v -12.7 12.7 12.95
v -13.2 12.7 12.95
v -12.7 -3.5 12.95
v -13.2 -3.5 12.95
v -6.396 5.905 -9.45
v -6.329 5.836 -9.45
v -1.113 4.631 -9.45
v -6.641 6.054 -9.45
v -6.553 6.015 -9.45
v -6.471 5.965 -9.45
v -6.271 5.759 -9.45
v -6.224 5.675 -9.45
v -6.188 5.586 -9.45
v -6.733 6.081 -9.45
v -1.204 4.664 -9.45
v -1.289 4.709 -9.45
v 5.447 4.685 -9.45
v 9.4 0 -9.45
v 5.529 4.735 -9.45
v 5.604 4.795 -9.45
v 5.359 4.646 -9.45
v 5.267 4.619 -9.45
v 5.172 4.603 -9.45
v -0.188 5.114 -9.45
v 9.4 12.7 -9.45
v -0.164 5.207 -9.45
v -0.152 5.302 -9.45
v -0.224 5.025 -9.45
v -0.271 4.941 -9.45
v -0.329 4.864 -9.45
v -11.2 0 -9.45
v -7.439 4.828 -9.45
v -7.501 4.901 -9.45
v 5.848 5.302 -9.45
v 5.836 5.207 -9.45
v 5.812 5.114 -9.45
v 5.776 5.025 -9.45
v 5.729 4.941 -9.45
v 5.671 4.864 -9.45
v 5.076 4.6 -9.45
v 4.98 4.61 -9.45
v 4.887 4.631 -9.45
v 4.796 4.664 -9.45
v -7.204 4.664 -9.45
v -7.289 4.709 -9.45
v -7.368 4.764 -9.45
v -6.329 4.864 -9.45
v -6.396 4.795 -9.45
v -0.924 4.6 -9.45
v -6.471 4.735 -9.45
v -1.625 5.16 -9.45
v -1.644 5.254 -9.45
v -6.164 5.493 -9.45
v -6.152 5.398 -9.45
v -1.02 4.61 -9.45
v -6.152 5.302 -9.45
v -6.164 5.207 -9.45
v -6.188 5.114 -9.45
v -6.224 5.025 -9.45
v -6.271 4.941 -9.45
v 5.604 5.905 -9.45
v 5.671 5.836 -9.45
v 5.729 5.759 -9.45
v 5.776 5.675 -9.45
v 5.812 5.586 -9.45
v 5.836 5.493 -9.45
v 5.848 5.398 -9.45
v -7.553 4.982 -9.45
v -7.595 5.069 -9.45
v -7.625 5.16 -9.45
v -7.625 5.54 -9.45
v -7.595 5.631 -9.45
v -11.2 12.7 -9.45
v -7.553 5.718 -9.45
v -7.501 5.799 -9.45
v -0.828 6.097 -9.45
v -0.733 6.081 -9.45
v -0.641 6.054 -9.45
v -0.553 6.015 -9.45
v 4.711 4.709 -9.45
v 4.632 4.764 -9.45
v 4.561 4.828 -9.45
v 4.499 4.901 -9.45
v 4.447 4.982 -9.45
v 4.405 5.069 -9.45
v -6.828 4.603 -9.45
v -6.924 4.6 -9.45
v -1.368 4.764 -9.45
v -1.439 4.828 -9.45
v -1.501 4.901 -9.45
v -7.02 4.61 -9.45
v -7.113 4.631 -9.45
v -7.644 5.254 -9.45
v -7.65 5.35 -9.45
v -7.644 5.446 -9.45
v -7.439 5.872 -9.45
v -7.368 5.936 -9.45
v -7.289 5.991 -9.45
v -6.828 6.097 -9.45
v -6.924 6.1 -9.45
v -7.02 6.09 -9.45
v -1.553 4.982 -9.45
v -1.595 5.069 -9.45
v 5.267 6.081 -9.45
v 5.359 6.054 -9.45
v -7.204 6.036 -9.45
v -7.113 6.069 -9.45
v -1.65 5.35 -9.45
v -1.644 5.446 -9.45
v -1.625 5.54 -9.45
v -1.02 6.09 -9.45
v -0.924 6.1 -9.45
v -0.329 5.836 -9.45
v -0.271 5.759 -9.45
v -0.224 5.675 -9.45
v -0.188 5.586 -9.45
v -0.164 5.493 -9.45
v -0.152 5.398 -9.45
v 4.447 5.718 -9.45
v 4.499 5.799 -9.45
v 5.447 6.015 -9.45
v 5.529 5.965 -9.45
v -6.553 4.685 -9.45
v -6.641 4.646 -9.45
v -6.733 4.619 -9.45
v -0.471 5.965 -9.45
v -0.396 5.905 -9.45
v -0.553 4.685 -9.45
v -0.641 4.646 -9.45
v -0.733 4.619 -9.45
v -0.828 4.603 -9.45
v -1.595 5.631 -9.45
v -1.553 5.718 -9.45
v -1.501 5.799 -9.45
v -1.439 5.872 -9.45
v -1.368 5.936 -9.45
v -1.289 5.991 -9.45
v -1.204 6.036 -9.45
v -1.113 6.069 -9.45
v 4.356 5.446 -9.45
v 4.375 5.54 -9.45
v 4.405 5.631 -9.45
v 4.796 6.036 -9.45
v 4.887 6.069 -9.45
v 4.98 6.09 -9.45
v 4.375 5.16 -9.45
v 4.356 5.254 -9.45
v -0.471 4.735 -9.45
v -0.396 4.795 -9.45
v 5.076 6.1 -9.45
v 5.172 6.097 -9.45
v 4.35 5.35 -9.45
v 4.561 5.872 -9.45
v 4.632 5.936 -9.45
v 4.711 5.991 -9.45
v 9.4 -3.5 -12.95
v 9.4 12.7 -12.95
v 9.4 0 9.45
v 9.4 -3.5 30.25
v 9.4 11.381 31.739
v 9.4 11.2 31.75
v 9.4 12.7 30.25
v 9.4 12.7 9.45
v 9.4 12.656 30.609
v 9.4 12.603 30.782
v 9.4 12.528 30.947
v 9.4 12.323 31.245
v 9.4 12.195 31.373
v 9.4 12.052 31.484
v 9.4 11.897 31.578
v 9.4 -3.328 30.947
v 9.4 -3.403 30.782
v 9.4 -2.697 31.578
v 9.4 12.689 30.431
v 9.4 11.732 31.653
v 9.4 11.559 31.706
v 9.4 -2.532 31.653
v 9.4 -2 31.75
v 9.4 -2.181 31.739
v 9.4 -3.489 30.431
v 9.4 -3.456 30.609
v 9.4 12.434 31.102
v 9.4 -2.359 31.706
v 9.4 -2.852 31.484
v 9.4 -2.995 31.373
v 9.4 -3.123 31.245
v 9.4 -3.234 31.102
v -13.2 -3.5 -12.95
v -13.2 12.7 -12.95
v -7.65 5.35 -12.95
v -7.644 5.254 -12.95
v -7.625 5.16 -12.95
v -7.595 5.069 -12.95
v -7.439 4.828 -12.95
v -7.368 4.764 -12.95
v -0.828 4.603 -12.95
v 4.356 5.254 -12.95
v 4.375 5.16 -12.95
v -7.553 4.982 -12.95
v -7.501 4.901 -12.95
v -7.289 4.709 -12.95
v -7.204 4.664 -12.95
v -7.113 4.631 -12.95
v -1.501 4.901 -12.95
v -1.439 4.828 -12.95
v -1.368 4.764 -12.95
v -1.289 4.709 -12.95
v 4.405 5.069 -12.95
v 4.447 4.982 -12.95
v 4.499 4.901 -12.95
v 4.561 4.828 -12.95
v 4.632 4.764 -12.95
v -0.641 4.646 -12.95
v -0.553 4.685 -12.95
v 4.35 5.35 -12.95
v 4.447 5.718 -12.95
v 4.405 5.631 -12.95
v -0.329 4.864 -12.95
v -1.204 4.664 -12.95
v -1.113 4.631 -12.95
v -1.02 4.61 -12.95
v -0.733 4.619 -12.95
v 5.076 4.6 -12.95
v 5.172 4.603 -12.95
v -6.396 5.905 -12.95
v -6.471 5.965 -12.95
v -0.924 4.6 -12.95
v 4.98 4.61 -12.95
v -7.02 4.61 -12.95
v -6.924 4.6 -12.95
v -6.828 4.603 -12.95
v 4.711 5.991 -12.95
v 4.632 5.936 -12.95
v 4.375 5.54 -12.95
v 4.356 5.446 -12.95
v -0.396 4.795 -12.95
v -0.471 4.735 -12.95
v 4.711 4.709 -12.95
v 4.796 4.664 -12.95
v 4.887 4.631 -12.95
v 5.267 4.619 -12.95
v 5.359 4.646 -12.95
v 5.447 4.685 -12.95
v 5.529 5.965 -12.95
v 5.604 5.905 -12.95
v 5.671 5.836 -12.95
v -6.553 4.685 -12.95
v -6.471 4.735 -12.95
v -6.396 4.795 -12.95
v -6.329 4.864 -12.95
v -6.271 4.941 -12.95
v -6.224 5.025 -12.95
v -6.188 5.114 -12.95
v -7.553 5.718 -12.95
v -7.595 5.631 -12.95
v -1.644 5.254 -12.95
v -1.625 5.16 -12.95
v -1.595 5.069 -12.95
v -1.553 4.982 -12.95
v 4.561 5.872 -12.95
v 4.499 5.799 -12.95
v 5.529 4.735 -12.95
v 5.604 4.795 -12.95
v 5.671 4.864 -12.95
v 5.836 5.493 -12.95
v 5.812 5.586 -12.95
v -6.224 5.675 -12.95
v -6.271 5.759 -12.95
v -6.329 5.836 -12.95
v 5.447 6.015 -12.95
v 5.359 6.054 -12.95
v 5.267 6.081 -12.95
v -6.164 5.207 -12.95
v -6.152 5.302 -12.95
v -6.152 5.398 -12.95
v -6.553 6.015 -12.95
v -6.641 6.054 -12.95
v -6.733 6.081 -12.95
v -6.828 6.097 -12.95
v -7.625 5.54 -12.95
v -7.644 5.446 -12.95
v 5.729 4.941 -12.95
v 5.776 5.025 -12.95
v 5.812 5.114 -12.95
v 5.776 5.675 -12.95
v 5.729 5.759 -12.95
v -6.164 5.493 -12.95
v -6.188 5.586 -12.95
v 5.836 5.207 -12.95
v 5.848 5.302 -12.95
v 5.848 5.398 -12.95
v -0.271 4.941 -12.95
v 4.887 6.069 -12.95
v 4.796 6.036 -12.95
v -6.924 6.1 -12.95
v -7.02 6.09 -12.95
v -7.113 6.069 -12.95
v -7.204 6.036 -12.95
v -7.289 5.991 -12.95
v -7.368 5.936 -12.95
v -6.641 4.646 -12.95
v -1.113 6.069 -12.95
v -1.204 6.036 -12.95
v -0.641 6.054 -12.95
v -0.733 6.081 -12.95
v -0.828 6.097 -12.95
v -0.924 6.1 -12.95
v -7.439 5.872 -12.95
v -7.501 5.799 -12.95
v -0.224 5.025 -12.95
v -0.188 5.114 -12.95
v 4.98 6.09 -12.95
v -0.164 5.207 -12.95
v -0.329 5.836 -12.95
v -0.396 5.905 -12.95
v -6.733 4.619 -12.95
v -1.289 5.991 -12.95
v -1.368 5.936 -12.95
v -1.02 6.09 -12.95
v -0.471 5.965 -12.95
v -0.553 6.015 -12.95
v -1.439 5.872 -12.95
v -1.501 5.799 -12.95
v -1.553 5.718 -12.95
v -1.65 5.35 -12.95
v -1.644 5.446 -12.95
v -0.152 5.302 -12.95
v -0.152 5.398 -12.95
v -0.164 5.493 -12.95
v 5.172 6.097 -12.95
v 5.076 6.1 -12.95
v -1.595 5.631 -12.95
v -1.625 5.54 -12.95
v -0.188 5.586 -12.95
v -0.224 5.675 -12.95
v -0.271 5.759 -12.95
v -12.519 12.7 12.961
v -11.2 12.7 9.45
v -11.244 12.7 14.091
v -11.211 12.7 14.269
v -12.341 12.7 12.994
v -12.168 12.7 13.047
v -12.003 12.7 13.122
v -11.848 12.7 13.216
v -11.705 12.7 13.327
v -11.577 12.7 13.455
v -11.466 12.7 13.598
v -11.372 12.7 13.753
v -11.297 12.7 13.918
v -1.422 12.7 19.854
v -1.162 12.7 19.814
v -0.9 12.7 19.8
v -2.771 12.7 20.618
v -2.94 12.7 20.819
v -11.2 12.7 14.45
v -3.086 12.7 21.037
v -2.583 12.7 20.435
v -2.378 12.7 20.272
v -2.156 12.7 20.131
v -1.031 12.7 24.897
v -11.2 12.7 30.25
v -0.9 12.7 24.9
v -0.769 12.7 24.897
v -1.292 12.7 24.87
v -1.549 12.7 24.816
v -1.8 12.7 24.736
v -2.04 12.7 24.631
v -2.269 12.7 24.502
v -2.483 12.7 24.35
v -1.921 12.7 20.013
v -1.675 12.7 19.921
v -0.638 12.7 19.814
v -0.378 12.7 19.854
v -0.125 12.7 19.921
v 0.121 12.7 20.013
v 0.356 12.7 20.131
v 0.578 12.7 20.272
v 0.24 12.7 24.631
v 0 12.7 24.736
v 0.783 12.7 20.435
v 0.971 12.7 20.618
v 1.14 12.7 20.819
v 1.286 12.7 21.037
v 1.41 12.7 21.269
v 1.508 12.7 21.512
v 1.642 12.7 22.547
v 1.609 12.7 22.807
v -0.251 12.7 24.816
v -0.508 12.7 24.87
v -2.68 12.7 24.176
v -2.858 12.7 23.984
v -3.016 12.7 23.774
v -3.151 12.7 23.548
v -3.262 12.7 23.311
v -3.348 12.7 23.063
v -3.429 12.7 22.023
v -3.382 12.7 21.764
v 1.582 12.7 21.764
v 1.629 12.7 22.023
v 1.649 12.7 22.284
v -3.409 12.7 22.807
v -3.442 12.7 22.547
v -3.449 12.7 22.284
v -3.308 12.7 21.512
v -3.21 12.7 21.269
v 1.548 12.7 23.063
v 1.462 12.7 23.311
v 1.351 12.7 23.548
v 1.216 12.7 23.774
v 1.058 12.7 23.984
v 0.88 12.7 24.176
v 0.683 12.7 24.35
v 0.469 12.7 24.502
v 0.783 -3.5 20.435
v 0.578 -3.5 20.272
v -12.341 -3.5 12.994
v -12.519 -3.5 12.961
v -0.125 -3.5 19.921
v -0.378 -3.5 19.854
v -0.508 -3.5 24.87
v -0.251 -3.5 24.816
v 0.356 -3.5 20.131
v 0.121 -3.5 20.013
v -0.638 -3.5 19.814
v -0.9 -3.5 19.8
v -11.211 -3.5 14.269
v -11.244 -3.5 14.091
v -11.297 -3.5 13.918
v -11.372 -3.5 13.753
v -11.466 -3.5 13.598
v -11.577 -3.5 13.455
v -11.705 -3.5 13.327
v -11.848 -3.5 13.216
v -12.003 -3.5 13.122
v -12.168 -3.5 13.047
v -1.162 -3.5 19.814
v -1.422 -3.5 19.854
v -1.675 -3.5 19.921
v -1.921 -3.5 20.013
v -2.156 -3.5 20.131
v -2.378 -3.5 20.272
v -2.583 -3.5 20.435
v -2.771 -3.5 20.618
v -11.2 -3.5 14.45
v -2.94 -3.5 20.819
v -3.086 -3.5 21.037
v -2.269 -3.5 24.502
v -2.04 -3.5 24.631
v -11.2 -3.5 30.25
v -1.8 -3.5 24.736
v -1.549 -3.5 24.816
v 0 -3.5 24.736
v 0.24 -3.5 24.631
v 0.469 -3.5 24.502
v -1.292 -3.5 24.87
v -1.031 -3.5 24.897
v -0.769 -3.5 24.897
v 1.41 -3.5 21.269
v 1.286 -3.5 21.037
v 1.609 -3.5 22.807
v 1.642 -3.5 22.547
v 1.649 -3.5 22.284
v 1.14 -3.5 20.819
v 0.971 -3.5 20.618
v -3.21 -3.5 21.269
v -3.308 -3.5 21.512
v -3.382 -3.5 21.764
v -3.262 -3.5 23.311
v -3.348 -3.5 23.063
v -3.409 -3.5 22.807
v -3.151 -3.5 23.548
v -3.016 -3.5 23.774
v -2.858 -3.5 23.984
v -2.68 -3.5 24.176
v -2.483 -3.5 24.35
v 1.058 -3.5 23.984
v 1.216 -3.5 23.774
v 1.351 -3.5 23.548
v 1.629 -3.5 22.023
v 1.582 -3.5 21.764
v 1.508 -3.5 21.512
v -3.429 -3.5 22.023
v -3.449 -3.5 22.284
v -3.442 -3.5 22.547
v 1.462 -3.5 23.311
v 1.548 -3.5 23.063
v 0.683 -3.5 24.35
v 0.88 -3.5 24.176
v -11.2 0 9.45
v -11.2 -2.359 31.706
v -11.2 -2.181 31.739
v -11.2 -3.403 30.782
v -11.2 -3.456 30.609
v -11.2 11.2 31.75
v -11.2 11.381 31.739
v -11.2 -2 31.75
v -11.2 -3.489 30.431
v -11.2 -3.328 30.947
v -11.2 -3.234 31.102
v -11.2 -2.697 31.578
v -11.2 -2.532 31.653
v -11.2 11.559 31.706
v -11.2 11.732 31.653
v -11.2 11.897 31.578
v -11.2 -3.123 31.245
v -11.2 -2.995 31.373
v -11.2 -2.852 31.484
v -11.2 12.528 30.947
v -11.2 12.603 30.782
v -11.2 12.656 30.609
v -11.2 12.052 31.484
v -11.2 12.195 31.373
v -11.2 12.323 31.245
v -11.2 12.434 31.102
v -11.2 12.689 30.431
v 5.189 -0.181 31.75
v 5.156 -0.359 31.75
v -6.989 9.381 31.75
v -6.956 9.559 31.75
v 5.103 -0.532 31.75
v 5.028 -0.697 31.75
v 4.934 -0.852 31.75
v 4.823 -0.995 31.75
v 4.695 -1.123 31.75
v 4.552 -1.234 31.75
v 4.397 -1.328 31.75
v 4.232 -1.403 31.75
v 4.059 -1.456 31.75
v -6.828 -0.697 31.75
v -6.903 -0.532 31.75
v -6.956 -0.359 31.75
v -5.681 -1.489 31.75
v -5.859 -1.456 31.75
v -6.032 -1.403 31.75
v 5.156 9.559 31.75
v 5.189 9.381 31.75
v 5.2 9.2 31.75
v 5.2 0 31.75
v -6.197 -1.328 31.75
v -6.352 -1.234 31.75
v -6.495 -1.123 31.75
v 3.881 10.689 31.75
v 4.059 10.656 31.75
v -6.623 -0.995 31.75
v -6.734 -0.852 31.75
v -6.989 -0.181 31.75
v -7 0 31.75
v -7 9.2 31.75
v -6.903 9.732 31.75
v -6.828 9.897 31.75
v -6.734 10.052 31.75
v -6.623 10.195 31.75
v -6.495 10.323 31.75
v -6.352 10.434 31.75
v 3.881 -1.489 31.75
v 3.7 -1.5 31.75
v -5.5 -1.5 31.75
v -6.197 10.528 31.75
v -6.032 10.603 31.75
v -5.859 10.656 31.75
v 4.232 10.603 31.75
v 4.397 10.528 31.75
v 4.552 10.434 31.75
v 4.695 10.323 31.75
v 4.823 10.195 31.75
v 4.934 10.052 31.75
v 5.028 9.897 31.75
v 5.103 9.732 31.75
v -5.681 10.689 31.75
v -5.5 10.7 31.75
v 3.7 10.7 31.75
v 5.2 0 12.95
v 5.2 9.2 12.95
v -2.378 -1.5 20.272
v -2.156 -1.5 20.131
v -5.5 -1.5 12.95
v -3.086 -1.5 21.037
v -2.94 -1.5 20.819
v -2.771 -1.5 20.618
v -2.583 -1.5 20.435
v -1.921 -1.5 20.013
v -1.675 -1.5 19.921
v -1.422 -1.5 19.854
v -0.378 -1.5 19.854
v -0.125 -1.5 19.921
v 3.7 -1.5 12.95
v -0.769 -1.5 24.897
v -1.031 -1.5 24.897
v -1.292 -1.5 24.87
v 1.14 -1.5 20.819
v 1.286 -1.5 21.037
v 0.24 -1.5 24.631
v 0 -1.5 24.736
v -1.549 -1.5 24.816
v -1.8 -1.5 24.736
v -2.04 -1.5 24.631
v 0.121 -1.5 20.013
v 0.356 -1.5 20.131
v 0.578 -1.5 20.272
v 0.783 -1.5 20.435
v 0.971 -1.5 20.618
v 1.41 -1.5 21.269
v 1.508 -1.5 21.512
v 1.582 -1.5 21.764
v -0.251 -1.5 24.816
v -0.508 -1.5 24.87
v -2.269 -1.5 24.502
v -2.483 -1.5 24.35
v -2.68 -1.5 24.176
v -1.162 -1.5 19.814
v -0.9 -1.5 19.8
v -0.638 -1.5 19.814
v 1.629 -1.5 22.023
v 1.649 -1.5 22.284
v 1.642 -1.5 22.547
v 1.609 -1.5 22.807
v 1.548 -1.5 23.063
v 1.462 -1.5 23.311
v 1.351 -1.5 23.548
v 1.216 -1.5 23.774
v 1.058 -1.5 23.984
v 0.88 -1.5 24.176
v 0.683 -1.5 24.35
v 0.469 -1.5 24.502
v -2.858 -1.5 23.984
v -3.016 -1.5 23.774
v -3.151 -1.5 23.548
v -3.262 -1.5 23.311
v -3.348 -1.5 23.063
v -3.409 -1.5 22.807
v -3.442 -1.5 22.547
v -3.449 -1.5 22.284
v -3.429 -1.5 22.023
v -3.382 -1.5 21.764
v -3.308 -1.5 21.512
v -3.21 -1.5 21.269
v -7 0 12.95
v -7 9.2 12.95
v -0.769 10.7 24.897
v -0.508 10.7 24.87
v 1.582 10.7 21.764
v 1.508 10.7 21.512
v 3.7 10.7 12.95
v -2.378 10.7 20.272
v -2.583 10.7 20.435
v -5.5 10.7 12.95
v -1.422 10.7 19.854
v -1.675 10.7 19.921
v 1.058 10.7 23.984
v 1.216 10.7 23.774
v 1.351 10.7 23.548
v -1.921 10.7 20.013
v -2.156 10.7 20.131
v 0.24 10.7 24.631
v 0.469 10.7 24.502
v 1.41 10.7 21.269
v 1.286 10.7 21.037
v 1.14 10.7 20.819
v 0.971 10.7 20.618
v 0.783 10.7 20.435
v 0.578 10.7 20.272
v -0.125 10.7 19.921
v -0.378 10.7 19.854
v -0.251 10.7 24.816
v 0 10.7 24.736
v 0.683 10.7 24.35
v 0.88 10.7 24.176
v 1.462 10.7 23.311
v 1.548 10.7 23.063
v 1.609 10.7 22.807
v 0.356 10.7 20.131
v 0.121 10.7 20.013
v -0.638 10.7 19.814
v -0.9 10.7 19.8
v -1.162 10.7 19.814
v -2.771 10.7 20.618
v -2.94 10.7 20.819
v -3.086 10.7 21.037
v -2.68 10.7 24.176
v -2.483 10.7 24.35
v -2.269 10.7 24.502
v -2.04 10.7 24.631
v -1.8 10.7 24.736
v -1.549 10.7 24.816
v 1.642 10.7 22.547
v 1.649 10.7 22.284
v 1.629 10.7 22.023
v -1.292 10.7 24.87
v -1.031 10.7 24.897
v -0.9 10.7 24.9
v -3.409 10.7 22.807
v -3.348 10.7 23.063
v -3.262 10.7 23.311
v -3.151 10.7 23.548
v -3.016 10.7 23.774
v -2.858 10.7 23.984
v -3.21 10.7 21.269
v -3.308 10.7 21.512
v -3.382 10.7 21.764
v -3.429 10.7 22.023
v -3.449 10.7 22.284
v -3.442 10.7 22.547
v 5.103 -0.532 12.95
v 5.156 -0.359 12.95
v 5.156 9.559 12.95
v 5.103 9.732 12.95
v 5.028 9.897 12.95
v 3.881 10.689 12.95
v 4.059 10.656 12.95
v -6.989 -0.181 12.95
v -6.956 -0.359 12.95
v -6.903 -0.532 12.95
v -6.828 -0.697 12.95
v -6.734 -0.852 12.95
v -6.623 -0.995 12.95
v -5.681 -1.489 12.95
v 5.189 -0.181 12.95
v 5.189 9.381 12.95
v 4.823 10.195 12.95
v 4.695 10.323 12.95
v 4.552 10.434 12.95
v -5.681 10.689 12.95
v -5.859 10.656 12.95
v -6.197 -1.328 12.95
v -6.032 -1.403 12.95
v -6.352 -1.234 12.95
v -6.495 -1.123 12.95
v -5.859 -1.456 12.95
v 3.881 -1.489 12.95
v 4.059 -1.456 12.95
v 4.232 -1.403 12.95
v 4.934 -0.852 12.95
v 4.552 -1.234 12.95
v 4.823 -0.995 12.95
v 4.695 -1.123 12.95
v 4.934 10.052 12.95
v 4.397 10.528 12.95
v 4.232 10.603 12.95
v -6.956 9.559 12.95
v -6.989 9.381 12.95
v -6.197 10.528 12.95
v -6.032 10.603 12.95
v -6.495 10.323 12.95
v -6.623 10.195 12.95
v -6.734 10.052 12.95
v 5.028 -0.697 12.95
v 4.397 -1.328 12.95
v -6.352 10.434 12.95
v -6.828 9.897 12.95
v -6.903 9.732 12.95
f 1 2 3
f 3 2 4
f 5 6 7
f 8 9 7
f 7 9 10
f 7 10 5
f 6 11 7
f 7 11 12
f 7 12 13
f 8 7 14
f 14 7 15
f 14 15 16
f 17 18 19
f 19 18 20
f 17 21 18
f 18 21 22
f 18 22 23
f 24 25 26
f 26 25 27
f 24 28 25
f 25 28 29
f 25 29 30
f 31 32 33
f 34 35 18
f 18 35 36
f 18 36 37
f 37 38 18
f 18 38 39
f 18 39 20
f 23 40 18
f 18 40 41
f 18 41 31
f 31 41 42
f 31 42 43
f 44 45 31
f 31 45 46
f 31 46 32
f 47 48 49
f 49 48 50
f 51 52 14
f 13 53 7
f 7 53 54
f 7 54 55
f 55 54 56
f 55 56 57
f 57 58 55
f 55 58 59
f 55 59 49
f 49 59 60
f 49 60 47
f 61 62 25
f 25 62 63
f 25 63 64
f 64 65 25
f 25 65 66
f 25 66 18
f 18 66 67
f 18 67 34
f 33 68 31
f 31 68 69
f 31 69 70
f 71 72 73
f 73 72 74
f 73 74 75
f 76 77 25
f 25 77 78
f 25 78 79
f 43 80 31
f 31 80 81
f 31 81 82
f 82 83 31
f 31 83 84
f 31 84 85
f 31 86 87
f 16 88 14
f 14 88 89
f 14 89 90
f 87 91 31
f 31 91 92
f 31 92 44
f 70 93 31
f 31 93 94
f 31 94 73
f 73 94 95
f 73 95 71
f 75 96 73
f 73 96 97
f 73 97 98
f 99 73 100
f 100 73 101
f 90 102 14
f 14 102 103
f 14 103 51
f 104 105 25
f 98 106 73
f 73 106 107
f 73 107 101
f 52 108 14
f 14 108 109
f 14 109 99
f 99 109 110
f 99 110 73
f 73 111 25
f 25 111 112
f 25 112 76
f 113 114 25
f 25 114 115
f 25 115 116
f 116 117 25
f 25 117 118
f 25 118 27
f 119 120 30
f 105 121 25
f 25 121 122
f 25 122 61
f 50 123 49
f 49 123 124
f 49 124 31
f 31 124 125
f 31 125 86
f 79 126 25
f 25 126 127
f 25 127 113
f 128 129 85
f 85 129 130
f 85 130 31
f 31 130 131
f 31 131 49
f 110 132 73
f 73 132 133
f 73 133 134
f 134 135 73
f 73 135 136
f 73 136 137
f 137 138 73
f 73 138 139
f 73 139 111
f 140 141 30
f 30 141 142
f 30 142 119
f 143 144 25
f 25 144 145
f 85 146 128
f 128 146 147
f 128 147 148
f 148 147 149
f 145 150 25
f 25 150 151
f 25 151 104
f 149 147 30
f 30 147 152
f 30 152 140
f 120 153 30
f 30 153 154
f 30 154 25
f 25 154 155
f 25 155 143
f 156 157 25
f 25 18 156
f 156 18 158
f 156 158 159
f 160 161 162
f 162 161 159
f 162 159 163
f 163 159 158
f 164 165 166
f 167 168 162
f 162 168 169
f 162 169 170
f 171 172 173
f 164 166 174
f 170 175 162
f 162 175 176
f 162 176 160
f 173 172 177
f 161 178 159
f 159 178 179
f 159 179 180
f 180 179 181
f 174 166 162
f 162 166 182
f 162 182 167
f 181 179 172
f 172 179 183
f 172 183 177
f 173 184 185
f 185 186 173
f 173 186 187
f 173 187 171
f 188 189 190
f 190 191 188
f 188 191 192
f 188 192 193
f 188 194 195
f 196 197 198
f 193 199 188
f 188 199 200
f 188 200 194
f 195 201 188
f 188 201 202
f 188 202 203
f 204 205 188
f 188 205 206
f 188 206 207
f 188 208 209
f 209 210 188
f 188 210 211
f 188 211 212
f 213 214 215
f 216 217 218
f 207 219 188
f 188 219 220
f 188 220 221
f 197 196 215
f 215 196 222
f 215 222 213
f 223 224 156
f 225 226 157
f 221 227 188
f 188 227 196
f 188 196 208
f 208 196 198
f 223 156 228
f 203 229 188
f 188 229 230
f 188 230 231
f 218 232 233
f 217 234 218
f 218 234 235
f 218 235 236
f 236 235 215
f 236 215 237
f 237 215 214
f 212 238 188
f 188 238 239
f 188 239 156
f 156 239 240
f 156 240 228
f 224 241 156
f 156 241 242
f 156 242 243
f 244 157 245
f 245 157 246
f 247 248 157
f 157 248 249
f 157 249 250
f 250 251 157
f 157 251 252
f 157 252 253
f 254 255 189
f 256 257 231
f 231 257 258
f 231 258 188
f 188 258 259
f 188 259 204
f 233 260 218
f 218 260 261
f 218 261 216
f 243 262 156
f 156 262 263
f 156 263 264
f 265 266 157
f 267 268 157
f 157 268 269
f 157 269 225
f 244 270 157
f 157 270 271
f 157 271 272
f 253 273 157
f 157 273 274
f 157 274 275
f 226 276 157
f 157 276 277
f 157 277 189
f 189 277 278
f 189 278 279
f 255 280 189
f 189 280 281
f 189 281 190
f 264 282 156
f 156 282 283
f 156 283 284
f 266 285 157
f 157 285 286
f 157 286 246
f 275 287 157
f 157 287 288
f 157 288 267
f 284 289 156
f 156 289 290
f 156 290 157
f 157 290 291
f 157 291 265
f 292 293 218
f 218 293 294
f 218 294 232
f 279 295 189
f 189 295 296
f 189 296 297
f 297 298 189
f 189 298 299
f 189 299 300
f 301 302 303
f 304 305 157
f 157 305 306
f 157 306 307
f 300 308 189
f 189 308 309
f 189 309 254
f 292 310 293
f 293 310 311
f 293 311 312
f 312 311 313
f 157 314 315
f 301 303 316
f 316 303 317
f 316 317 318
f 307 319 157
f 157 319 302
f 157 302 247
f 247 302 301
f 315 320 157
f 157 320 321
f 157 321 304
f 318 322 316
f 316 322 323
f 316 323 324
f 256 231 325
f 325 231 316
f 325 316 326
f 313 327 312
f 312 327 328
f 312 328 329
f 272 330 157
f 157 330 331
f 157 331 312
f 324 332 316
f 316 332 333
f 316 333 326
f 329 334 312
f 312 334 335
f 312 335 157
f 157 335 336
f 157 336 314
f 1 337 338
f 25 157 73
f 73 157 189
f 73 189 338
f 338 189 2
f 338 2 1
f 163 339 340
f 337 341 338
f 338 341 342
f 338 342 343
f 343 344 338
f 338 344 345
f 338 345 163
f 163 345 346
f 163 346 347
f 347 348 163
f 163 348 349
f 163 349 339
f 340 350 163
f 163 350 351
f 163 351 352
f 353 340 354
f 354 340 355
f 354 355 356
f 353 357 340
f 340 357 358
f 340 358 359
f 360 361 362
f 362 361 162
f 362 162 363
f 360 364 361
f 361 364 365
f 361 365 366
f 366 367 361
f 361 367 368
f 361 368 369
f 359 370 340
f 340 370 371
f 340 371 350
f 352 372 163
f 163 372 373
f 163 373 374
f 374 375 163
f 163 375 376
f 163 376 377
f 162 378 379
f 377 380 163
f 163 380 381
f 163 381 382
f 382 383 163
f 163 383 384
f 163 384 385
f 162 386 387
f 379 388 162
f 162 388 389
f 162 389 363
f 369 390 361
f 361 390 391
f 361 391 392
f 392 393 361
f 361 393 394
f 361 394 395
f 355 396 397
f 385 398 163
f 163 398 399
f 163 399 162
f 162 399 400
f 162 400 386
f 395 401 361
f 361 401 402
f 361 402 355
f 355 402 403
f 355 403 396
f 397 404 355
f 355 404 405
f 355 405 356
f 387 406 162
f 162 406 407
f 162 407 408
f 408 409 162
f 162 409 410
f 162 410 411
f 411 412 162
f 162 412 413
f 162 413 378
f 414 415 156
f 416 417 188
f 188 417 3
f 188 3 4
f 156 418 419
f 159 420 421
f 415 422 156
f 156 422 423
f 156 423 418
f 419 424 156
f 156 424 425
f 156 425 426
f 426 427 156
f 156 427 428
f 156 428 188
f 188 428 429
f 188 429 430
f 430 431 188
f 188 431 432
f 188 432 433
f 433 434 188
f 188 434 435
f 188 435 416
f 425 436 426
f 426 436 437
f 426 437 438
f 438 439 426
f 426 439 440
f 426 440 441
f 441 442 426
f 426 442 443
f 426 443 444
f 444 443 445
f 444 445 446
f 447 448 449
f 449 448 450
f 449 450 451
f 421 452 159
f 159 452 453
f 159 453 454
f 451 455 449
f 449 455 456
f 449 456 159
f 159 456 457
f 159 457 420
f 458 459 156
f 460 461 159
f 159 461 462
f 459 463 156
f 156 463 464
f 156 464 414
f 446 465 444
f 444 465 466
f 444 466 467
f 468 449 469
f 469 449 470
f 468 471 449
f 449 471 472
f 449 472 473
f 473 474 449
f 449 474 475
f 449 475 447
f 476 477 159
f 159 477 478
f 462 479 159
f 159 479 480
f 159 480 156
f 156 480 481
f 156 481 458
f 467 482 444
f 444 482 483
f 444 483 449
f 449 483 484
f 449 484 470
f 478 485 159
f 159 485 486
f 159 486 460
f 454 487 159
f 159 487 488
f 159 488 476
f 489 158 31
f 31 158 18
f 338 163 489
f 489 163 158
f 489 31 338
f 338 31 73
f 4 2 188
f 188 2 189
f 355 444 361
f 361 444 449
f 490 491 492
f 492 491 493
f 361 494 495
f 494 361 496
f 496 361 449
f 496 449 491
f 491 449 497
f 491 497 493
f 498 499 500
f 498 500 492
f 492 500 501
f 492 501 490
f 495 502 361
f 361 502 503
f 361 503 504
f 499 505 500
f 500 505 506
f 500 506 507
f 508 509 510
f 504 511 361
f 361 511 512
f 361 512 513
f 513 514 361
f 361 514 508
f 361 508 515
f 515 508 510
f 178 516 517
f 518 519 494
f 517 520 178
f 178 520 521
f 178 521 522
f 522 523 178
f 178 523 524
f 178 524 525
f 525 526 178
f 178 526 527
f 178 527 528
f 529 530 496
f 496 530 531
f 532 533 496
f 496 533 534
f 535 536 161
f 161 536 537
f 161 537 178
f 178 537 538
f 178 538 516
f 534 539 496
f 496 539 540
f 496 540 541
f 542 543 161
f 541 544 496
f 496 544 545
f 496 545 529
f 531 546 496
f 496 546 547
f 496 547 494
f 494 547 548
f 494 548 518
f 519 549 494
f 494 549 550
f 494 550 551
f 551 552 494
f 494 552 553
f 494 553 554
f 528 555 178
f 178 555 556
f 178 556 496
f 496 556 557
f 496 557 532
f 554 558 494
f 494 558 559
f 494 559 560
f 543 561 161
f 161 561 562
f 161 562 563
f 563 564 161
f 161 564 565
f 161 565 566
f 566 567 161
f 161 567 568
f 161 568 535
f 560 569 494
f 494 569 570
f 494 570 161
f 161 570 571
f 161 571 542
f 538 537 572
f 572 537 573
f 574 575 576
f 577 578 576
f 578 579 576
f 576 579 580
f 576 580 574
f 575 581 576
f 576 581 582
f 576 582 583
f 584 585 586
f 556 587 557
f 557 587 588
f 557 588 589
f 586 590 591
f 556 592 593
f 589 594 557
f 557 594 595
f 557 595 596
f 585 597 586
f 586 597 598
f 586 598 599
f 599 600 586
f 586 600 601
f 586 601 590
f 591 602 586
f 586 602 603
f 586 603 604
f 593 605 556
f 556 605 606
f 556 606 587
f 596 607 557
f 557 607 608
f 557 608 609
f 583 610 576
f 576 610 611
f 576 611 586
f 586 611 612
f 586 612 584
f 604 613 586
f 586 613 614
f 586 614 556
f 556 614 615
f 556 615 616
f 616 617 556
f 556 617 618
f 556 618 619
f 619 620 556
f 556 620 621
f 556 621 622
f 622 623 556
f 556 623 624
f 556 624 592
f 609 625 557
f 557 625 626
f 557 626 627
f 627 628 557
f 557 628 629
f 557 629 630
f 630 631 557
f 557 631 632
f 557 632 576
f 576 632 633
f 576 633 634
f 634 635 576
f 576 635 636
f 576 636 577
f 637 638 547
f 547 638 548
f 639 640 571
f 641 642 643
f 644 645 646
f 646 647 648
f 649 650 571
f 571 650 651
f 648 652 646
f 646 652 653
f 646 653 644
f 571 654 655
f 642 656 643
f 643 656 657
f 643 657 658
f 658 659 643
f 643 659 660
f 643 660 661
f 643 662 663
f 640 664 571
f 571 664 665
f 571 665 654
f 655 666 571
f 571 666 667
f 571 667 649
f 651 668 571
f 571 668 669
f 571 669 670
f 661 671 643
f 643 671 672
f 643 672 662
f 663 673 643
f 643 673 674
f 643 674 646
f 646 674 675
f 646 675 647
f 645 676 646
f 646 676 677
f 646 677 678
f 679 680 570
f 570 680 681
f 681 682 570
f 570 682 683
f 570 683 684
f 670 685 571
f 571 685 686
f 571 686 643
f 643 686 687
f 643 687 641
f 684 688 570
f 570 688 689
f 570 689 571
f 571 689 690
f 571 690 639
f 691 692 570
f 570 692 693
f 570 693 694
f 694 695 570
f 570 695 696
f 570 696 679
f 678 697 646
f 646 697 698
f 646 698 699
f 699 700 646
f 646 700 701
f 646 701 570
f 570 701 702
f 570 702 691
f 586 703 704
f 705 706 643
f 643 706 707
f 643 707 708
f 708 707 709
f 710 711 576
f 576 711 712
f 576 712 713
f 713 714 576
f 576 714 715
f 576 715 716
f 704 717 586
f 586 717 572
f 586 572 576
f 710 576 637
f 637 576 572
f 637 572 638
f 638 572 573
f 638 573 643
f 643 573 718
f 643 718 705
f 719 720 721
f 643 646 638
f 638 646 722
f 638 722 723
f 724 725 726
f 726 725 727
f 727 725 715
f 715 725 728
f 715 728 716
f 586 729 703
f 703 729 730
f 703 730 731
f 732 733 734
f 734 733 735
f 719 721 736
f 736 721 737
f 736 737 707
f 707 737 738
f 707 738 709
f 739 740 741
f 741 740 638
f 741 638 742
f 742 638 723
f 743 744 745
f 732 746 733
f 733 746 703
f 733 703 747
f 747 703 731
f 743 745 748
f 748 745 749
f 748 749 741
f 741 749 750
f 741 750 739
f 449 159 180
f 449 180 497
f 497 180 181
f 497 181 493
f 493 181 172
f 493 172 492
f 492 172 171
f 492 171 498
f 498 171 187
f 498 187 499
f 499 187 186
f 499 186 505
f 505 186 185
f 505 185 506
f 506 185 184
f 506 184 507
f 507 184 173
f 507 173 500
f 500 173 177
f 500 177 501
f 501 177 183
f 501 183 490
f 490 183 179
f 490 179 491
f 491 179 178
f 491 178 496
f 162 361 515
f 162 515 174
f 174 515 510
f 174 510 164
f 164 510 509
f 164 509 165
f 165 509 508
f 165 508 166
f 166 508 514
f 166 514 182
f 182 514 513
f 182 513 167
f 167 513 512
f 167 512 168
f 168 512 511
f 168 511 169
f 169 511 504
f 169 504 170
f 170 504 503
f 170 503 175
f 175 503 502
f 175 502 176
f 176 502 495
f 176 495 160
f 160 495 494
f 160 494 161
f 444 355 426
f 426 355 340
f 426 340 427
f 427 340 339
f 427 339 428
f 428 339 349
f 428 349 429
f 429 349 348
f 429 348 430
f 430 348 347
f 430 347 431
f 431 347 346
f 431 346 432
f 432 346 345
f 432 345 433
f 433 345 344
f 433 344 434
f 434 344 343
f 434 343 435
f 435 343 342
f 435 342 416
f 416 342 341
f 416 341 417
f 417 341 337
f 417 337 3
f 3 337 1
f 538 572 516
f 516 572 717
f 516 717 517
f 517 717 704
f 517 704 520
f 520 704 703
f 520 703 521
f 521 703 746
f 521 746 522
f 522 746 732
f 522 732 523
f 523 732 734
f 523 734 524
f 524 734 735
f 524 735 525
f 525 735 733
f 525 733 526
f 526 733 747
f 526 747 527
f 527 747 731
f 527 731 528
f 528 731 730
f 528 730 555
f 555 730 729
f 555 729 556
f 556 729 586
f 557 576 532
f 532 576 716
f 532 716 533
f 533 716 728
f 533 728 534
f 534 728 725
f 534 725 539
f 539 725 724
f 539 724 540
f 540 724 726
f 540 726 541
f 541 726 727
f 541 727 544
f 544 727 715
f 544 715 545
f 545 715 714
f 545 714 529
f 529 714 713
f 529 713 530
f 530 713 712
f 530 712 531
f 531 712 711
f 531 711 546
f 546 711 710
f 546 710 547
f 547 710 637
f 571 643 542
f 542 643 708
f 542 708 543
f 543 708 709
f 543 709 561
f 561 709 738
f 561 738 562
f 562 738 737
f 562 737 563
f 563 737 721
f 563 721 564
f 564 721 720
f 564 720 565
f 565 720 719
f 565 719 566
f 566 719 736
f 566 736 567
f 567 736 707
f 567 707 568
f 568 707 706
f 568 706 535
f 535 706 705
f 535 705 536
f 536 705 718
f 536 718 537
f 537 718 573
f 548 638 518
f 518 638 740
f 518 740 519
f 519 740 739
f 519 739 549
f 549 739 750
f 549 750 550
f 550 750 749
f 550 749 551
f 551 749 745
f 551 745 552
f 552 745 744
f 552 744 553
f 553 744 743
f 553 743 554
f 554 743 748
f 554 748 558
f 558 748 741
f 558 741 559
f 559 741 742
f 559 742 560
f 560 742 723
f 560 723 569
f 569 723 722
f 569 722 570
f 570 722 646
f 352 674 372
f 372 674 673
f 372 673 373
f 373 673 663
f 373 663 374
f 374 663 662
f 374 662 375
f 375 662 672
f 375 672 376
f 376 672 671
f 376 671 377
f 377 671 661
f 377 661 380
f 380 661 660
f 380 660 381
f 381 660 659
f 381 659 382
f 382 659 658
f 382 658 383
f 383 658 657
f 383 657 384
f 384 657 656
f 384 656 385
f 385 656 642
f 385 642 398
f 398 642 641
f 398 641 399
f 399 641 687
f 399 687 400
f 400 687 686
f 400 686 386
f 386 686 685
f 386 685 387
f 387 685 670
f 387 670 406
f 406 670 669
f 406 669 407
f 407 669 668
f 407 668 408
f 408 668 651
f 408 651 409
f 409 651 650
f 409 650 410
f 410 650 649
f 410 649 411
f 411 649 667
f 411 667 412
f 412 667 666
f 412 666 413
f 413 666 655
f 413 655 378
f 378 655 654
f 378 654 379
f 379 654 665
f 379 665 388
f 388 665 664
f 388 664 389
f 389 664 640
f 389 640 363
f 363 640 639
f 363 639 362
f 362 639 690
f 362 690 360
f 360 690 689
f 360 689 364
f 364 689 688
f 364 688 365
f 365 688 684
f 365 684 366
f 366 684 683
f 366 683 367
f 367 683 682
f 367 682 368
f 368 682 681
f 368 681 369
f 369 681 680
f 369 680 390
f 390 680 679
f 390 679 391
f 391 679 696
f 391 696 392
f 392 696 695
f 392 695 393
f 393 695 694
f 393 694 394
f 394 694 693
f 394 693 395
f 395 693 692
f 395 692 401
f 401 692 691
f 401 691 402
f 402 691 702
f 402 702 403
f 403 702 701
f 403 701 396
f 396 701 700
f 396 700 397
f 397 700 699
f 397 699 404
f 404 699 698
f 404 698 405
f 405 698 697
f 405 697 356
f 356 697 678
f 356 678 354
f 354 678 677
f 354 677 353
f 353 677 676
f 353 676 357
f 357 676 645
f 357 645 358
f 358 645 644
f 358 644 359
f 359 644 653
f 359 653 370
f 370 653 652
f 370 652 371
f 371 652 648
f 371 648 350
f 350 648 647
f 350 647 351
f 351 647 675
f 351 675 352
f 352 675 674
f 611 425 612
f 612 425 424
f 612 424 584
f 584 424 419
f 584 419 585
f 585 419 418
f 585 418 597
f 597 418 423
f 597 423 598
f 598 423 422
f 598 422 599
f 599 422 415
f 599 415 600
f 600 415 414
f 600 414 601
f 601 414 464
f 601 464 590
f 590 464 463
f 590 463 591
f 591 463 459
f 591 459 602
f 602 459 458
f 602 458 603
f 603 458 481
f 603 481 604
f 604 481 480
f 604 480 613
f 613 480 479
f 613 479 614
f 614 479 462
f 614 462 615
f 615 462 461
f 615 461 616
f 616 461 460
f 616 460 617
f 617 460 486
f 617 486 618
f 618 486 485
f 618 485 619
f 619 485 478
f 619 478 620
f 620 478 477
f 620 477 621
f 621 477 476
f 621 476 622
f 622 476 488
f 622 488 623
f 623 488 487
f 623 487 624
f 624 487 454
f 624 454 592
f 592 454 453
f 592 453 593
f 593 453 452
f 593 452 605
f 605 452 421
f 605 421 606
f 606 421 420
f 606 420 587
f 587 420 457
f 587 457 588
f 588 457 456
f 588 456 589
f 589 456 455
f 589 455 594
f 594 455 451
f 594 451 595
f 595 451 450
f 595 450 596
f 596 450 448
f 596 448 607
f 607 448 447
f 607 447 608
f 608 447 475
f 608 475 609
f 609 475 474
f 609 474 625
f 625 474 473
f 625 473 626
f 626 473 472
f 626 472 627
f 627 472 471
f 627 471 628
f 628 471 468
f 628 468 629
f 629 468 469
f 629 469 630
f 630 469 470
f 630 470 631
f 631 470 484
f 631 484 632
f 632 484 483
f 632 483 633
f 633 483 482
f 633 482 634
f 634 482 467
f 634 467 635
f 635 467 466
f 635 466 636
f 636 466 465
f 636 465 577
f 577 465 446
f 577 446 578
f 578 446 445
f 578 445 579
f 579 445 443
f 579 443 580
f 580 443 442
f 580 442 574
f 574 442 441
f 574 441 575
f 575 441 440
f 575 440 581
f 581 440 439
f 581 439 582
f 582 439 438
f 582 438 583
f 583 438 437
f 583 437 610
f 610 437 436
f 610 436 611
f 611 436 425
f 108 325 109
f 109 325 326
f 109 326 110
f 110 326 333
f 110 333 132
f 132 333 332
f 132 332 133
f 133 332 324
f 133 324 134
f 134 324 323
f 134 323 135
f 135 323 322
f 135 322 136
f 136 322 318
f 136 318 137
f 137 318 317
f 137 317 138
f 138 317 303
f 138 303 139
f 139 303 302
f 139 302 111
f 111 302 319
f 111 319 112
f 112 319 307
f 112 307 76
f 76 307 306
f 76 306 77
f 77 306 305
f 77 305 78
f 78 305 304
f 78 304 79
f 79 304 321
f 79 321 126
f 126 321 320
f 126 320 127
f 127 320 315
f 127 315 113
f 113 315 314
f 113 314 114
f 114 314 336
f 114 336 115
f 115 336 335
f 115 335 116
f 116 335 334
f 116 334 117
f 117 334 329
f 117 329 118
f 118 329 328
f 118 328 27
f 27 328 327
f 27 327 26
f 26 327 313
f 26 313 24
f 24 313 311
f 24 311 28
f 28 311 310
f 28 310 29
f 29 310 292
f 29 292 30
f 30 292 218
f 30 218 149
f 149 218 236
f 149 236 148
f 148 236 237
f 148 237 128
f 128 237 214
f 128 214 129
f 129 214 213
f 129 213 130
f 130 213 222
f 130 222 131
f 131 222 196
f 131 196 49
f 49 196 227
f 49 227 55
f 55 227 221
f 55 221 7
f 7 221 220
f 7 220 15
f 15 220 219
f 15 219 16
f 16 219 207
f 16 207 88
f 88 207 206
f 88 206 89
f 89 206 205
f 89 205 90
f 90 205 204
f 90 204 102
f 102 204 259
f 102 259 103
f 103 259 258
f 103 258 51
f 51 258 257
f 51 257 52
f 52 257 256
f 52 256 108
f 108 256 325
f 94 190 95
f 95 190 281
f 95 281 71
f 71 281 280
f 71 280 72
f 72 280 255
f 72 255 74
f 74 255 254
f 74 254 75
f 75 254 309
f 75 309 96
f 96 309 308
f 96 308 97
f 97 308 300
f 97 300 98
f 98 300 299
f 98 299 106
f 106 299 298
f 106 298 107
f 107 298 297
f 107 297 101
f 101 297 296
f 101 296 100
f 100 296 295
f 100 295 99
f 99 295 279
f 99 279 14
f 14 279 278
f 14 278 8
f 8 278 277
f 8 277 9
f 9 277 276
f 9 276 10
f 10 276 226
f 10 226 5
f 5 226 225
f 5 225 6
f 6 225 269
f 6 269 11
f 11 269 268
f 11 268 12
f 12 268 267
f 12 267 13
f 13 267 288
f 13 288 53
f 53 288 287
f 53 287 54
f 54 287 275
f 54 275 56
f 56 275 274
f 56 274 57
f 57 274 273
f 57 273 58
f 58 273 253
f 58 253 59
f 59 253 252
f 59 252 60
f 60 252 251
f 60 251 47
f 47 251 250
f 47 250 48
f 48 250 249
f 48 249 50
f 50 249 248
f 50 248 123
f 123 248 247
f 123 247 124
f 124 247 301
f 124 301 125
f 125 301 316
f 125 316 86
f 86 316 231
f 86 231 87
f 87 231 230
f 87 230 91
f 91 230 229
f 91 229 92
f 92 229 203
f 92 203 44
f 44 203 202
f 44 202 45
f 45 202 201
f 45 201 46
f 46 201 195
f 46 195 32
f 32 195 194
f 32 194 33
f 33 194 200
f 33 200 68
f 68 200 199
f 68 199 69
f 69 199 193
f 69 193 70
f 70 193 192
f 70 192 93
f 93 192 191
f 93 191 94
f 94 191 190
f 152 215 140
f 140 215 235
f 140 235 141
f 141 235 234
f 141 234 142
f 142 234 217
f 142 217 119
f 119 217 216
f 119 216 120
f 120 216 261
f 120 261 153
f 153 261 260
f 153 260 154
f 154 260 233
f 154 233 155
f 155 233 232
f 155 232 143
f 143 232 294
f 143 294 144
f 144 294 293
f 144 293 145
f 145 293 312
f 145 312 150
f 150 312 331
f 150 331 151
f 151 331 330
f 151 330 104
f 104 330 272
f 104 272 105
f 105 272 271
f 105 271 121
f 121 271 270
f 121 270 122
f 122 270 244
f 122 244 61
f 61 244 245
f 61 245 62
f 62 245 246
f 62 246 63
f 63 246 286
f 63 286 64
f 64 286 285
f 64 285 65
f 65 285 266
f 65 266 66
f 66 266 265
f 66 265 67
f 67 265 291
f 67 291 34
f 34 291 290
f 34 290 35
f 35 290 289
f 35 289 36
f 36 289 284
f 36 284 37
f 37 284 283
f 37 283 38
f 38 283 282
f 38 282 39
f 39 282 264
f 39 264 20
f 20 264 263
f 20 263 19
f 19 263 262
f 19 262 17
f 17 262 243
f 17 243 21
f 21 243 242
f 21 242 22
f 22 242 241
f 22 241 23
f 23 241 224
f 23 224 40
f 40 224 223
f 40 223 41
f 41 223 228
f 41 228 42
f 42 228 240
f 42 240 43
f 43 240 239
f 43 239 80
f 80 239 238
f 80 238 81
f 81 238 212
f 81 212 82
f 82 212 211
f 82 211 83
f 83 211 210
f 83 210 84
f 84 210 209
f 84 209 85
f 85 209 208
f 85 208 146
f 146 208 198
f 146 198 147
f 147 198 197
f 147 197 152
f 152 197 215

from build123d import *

# Parameters (mm, degrees)
SKETCH_1_W          = 18.8
SKETCH_1_H          = 3.5
EXTRUDE_1_DEPTH     = 12.7
EXTRUDE_1_2_DEPTH   = 12.7
SKETCH_2_W          = 18.8
SKETCH_2_H          = 25.9
EXTRUDE_2_DEPTH     = 3.5
EXTRUDE_3_DEPTH     = 1.8
SKETCH_4_W          = 25.9
SKETCH_4_H          = 16.2
EXTRUDE_4_DEPTH     = 2
SKETCH_5_W          = 20.6
SKETCH_5_H          = 16.2
EXTRUDE_5_DEPTH     = 18.8
SKETCH_6_W          = 12.2
SKETCH_6_H          = 12.2
CUT_EXTRUDE_1_DEPTH = 18.8
FILLET_1_R          = 1.5
SKETCH_7_R          = 2.55
CUT_EXTRUDE_2_DEPTH = 18.8
SKETCH_9_R          = 0.75
CUT_EXTRUDE_3_DEPTH = 7


with BuildPart() as part:
    # Эскиз1 → Бобышка-Вытянуть1 (new body)
    with BuildSketch(Plane(origin=(0, 0, 0), x_dir=(1, 0, 0), z_dir=(0, 1, 0))):
        with Locations((0, 11.2)):
            Rectangle(SKETCH_1_W, SKETCH_1_H)
    extrude(amount=EXTRUDE_1_DEPTH)



with BuildPart() as body_2:
    # Эскиз1 → Extrude 1 2 (new body)
    with BuildSketch(Plane(origin=(0, 0, 0), x_dir=(1, 0, 0), z_dir=(0, 1, 0))):
        with Locations((0, -11.2)):
            Rectangle(SKETCH_1_W, SKETCH_1_H)
    extrude(amount=EXTRUDE_1_2_DEPTH)


with BuildPart() as part_1:
    add(part.part)

    add(body_2.part)  # Бобышка-Вытянуть2 merges body 2
    # Эскиз2 → Бобышка-Вытянуть2 (add)
    with BuildSketch(Plane.XZ):
        Rectangle(SKETCH_2_W, SKETCH_2_H)
    extrude(amount=EXTRUDE_2_DEPTH)

    # Эскиз3 → Бобышка-Вытянуть3 (add)
    with BuildSketch(Plane.ZY.offset(9.4)):
        Polygon((-12.95, 12.7), (-12.95, -3.5), (12.95, -3.5), (12.95, 12.7), (9.45, 12.7), (9.45, 0), (-9.45, 0), (-9.45, 12.7), align=None)
    extrude(amount=EXTRUDE_3_DEPTH)

    # Эскиз4 → Бобышка-Вытянуть4 (add)
    with BuildSketch(Plane.ZY.offset(11.2)):
        with Locations((0, 4.6)):
            Rectangle(SKETCH_4_W, SKETCH_4_H)
    extrude(amount=EXTRUDE_4_DEPTH)

    # Эскиз5 → Бобышка-Вытянуть5 (add)
    with BuildSketch(Plane.XY.offset(12.95)):
        with Locations((-0.9, 4.6)):
            Rectangle(SKETCH_5_W, SKETCH_5_H)
    extrude(amount=EXTRUDE_5_DEPTH)

    # Эскиз6 → Вырез-Вытянуть1 (cut)
    with BuildSketch(Plane.XY.offset(31.75)):
        with Locations((-0.9, 4.6)):
            Rectangle(SKETCH_6_W, SKETCH_6_H)
    extrude(amount=-CUT_EXTRUDE_1_DEPTH, mode=Mode.SUBTRACT)

    # Скругление1
    fillet_1_edges = [part_1.edges().sort_by_distance(p)[0] for p in [
        (-11.2, 4.6, 12.95),
        (-0.9, -3.5, 31.75),
        (-0.9, 12.7, 31.75),
        (5.2, 10.7, 22.35),
        (5.2, -1.5, 22.35),
        (-7, -1.5, 22.35),
        (-7, 10.7, 22.35),
    ]]
    fillet(fillet_1_edges, radius=FILLET_1_R)

    # Эскиз7 → Вырез-Вытянуть2 (cut)
    with BuildSketch(Plane.XZ.offset(3.5)):
        with Locations(Location((-0.9, 22.35, 0), (0, 0, 90))):
            Circle(SKETCH_7_R)
    extrude(amount=-CUT_EXTRUDE_2_DEPTH, mode=Mode.SUBTRACT)

    # Эскиз9 → Вырез-Вытянуть3 (cut)
    with BuildSketch(Plane(origin=(0, 0, -12.95), x_dir=(-1, 0, 0), z_dir=(0, 0, -1))):
        with Locations((0.9, 5.35)):
            Circle(SKETCH_9_R)
        with Locations((6.9, 5.35)):
            Circle(SKETCH_9_R)
        with Locations((-5.1, 5.35)):
            Circle(SKETCH_9_R)
    extrude(amount=-CUT_EXTRUDE_3_DEPTH, mode=Mode.SUBTRACT)


solid = part_1.part
